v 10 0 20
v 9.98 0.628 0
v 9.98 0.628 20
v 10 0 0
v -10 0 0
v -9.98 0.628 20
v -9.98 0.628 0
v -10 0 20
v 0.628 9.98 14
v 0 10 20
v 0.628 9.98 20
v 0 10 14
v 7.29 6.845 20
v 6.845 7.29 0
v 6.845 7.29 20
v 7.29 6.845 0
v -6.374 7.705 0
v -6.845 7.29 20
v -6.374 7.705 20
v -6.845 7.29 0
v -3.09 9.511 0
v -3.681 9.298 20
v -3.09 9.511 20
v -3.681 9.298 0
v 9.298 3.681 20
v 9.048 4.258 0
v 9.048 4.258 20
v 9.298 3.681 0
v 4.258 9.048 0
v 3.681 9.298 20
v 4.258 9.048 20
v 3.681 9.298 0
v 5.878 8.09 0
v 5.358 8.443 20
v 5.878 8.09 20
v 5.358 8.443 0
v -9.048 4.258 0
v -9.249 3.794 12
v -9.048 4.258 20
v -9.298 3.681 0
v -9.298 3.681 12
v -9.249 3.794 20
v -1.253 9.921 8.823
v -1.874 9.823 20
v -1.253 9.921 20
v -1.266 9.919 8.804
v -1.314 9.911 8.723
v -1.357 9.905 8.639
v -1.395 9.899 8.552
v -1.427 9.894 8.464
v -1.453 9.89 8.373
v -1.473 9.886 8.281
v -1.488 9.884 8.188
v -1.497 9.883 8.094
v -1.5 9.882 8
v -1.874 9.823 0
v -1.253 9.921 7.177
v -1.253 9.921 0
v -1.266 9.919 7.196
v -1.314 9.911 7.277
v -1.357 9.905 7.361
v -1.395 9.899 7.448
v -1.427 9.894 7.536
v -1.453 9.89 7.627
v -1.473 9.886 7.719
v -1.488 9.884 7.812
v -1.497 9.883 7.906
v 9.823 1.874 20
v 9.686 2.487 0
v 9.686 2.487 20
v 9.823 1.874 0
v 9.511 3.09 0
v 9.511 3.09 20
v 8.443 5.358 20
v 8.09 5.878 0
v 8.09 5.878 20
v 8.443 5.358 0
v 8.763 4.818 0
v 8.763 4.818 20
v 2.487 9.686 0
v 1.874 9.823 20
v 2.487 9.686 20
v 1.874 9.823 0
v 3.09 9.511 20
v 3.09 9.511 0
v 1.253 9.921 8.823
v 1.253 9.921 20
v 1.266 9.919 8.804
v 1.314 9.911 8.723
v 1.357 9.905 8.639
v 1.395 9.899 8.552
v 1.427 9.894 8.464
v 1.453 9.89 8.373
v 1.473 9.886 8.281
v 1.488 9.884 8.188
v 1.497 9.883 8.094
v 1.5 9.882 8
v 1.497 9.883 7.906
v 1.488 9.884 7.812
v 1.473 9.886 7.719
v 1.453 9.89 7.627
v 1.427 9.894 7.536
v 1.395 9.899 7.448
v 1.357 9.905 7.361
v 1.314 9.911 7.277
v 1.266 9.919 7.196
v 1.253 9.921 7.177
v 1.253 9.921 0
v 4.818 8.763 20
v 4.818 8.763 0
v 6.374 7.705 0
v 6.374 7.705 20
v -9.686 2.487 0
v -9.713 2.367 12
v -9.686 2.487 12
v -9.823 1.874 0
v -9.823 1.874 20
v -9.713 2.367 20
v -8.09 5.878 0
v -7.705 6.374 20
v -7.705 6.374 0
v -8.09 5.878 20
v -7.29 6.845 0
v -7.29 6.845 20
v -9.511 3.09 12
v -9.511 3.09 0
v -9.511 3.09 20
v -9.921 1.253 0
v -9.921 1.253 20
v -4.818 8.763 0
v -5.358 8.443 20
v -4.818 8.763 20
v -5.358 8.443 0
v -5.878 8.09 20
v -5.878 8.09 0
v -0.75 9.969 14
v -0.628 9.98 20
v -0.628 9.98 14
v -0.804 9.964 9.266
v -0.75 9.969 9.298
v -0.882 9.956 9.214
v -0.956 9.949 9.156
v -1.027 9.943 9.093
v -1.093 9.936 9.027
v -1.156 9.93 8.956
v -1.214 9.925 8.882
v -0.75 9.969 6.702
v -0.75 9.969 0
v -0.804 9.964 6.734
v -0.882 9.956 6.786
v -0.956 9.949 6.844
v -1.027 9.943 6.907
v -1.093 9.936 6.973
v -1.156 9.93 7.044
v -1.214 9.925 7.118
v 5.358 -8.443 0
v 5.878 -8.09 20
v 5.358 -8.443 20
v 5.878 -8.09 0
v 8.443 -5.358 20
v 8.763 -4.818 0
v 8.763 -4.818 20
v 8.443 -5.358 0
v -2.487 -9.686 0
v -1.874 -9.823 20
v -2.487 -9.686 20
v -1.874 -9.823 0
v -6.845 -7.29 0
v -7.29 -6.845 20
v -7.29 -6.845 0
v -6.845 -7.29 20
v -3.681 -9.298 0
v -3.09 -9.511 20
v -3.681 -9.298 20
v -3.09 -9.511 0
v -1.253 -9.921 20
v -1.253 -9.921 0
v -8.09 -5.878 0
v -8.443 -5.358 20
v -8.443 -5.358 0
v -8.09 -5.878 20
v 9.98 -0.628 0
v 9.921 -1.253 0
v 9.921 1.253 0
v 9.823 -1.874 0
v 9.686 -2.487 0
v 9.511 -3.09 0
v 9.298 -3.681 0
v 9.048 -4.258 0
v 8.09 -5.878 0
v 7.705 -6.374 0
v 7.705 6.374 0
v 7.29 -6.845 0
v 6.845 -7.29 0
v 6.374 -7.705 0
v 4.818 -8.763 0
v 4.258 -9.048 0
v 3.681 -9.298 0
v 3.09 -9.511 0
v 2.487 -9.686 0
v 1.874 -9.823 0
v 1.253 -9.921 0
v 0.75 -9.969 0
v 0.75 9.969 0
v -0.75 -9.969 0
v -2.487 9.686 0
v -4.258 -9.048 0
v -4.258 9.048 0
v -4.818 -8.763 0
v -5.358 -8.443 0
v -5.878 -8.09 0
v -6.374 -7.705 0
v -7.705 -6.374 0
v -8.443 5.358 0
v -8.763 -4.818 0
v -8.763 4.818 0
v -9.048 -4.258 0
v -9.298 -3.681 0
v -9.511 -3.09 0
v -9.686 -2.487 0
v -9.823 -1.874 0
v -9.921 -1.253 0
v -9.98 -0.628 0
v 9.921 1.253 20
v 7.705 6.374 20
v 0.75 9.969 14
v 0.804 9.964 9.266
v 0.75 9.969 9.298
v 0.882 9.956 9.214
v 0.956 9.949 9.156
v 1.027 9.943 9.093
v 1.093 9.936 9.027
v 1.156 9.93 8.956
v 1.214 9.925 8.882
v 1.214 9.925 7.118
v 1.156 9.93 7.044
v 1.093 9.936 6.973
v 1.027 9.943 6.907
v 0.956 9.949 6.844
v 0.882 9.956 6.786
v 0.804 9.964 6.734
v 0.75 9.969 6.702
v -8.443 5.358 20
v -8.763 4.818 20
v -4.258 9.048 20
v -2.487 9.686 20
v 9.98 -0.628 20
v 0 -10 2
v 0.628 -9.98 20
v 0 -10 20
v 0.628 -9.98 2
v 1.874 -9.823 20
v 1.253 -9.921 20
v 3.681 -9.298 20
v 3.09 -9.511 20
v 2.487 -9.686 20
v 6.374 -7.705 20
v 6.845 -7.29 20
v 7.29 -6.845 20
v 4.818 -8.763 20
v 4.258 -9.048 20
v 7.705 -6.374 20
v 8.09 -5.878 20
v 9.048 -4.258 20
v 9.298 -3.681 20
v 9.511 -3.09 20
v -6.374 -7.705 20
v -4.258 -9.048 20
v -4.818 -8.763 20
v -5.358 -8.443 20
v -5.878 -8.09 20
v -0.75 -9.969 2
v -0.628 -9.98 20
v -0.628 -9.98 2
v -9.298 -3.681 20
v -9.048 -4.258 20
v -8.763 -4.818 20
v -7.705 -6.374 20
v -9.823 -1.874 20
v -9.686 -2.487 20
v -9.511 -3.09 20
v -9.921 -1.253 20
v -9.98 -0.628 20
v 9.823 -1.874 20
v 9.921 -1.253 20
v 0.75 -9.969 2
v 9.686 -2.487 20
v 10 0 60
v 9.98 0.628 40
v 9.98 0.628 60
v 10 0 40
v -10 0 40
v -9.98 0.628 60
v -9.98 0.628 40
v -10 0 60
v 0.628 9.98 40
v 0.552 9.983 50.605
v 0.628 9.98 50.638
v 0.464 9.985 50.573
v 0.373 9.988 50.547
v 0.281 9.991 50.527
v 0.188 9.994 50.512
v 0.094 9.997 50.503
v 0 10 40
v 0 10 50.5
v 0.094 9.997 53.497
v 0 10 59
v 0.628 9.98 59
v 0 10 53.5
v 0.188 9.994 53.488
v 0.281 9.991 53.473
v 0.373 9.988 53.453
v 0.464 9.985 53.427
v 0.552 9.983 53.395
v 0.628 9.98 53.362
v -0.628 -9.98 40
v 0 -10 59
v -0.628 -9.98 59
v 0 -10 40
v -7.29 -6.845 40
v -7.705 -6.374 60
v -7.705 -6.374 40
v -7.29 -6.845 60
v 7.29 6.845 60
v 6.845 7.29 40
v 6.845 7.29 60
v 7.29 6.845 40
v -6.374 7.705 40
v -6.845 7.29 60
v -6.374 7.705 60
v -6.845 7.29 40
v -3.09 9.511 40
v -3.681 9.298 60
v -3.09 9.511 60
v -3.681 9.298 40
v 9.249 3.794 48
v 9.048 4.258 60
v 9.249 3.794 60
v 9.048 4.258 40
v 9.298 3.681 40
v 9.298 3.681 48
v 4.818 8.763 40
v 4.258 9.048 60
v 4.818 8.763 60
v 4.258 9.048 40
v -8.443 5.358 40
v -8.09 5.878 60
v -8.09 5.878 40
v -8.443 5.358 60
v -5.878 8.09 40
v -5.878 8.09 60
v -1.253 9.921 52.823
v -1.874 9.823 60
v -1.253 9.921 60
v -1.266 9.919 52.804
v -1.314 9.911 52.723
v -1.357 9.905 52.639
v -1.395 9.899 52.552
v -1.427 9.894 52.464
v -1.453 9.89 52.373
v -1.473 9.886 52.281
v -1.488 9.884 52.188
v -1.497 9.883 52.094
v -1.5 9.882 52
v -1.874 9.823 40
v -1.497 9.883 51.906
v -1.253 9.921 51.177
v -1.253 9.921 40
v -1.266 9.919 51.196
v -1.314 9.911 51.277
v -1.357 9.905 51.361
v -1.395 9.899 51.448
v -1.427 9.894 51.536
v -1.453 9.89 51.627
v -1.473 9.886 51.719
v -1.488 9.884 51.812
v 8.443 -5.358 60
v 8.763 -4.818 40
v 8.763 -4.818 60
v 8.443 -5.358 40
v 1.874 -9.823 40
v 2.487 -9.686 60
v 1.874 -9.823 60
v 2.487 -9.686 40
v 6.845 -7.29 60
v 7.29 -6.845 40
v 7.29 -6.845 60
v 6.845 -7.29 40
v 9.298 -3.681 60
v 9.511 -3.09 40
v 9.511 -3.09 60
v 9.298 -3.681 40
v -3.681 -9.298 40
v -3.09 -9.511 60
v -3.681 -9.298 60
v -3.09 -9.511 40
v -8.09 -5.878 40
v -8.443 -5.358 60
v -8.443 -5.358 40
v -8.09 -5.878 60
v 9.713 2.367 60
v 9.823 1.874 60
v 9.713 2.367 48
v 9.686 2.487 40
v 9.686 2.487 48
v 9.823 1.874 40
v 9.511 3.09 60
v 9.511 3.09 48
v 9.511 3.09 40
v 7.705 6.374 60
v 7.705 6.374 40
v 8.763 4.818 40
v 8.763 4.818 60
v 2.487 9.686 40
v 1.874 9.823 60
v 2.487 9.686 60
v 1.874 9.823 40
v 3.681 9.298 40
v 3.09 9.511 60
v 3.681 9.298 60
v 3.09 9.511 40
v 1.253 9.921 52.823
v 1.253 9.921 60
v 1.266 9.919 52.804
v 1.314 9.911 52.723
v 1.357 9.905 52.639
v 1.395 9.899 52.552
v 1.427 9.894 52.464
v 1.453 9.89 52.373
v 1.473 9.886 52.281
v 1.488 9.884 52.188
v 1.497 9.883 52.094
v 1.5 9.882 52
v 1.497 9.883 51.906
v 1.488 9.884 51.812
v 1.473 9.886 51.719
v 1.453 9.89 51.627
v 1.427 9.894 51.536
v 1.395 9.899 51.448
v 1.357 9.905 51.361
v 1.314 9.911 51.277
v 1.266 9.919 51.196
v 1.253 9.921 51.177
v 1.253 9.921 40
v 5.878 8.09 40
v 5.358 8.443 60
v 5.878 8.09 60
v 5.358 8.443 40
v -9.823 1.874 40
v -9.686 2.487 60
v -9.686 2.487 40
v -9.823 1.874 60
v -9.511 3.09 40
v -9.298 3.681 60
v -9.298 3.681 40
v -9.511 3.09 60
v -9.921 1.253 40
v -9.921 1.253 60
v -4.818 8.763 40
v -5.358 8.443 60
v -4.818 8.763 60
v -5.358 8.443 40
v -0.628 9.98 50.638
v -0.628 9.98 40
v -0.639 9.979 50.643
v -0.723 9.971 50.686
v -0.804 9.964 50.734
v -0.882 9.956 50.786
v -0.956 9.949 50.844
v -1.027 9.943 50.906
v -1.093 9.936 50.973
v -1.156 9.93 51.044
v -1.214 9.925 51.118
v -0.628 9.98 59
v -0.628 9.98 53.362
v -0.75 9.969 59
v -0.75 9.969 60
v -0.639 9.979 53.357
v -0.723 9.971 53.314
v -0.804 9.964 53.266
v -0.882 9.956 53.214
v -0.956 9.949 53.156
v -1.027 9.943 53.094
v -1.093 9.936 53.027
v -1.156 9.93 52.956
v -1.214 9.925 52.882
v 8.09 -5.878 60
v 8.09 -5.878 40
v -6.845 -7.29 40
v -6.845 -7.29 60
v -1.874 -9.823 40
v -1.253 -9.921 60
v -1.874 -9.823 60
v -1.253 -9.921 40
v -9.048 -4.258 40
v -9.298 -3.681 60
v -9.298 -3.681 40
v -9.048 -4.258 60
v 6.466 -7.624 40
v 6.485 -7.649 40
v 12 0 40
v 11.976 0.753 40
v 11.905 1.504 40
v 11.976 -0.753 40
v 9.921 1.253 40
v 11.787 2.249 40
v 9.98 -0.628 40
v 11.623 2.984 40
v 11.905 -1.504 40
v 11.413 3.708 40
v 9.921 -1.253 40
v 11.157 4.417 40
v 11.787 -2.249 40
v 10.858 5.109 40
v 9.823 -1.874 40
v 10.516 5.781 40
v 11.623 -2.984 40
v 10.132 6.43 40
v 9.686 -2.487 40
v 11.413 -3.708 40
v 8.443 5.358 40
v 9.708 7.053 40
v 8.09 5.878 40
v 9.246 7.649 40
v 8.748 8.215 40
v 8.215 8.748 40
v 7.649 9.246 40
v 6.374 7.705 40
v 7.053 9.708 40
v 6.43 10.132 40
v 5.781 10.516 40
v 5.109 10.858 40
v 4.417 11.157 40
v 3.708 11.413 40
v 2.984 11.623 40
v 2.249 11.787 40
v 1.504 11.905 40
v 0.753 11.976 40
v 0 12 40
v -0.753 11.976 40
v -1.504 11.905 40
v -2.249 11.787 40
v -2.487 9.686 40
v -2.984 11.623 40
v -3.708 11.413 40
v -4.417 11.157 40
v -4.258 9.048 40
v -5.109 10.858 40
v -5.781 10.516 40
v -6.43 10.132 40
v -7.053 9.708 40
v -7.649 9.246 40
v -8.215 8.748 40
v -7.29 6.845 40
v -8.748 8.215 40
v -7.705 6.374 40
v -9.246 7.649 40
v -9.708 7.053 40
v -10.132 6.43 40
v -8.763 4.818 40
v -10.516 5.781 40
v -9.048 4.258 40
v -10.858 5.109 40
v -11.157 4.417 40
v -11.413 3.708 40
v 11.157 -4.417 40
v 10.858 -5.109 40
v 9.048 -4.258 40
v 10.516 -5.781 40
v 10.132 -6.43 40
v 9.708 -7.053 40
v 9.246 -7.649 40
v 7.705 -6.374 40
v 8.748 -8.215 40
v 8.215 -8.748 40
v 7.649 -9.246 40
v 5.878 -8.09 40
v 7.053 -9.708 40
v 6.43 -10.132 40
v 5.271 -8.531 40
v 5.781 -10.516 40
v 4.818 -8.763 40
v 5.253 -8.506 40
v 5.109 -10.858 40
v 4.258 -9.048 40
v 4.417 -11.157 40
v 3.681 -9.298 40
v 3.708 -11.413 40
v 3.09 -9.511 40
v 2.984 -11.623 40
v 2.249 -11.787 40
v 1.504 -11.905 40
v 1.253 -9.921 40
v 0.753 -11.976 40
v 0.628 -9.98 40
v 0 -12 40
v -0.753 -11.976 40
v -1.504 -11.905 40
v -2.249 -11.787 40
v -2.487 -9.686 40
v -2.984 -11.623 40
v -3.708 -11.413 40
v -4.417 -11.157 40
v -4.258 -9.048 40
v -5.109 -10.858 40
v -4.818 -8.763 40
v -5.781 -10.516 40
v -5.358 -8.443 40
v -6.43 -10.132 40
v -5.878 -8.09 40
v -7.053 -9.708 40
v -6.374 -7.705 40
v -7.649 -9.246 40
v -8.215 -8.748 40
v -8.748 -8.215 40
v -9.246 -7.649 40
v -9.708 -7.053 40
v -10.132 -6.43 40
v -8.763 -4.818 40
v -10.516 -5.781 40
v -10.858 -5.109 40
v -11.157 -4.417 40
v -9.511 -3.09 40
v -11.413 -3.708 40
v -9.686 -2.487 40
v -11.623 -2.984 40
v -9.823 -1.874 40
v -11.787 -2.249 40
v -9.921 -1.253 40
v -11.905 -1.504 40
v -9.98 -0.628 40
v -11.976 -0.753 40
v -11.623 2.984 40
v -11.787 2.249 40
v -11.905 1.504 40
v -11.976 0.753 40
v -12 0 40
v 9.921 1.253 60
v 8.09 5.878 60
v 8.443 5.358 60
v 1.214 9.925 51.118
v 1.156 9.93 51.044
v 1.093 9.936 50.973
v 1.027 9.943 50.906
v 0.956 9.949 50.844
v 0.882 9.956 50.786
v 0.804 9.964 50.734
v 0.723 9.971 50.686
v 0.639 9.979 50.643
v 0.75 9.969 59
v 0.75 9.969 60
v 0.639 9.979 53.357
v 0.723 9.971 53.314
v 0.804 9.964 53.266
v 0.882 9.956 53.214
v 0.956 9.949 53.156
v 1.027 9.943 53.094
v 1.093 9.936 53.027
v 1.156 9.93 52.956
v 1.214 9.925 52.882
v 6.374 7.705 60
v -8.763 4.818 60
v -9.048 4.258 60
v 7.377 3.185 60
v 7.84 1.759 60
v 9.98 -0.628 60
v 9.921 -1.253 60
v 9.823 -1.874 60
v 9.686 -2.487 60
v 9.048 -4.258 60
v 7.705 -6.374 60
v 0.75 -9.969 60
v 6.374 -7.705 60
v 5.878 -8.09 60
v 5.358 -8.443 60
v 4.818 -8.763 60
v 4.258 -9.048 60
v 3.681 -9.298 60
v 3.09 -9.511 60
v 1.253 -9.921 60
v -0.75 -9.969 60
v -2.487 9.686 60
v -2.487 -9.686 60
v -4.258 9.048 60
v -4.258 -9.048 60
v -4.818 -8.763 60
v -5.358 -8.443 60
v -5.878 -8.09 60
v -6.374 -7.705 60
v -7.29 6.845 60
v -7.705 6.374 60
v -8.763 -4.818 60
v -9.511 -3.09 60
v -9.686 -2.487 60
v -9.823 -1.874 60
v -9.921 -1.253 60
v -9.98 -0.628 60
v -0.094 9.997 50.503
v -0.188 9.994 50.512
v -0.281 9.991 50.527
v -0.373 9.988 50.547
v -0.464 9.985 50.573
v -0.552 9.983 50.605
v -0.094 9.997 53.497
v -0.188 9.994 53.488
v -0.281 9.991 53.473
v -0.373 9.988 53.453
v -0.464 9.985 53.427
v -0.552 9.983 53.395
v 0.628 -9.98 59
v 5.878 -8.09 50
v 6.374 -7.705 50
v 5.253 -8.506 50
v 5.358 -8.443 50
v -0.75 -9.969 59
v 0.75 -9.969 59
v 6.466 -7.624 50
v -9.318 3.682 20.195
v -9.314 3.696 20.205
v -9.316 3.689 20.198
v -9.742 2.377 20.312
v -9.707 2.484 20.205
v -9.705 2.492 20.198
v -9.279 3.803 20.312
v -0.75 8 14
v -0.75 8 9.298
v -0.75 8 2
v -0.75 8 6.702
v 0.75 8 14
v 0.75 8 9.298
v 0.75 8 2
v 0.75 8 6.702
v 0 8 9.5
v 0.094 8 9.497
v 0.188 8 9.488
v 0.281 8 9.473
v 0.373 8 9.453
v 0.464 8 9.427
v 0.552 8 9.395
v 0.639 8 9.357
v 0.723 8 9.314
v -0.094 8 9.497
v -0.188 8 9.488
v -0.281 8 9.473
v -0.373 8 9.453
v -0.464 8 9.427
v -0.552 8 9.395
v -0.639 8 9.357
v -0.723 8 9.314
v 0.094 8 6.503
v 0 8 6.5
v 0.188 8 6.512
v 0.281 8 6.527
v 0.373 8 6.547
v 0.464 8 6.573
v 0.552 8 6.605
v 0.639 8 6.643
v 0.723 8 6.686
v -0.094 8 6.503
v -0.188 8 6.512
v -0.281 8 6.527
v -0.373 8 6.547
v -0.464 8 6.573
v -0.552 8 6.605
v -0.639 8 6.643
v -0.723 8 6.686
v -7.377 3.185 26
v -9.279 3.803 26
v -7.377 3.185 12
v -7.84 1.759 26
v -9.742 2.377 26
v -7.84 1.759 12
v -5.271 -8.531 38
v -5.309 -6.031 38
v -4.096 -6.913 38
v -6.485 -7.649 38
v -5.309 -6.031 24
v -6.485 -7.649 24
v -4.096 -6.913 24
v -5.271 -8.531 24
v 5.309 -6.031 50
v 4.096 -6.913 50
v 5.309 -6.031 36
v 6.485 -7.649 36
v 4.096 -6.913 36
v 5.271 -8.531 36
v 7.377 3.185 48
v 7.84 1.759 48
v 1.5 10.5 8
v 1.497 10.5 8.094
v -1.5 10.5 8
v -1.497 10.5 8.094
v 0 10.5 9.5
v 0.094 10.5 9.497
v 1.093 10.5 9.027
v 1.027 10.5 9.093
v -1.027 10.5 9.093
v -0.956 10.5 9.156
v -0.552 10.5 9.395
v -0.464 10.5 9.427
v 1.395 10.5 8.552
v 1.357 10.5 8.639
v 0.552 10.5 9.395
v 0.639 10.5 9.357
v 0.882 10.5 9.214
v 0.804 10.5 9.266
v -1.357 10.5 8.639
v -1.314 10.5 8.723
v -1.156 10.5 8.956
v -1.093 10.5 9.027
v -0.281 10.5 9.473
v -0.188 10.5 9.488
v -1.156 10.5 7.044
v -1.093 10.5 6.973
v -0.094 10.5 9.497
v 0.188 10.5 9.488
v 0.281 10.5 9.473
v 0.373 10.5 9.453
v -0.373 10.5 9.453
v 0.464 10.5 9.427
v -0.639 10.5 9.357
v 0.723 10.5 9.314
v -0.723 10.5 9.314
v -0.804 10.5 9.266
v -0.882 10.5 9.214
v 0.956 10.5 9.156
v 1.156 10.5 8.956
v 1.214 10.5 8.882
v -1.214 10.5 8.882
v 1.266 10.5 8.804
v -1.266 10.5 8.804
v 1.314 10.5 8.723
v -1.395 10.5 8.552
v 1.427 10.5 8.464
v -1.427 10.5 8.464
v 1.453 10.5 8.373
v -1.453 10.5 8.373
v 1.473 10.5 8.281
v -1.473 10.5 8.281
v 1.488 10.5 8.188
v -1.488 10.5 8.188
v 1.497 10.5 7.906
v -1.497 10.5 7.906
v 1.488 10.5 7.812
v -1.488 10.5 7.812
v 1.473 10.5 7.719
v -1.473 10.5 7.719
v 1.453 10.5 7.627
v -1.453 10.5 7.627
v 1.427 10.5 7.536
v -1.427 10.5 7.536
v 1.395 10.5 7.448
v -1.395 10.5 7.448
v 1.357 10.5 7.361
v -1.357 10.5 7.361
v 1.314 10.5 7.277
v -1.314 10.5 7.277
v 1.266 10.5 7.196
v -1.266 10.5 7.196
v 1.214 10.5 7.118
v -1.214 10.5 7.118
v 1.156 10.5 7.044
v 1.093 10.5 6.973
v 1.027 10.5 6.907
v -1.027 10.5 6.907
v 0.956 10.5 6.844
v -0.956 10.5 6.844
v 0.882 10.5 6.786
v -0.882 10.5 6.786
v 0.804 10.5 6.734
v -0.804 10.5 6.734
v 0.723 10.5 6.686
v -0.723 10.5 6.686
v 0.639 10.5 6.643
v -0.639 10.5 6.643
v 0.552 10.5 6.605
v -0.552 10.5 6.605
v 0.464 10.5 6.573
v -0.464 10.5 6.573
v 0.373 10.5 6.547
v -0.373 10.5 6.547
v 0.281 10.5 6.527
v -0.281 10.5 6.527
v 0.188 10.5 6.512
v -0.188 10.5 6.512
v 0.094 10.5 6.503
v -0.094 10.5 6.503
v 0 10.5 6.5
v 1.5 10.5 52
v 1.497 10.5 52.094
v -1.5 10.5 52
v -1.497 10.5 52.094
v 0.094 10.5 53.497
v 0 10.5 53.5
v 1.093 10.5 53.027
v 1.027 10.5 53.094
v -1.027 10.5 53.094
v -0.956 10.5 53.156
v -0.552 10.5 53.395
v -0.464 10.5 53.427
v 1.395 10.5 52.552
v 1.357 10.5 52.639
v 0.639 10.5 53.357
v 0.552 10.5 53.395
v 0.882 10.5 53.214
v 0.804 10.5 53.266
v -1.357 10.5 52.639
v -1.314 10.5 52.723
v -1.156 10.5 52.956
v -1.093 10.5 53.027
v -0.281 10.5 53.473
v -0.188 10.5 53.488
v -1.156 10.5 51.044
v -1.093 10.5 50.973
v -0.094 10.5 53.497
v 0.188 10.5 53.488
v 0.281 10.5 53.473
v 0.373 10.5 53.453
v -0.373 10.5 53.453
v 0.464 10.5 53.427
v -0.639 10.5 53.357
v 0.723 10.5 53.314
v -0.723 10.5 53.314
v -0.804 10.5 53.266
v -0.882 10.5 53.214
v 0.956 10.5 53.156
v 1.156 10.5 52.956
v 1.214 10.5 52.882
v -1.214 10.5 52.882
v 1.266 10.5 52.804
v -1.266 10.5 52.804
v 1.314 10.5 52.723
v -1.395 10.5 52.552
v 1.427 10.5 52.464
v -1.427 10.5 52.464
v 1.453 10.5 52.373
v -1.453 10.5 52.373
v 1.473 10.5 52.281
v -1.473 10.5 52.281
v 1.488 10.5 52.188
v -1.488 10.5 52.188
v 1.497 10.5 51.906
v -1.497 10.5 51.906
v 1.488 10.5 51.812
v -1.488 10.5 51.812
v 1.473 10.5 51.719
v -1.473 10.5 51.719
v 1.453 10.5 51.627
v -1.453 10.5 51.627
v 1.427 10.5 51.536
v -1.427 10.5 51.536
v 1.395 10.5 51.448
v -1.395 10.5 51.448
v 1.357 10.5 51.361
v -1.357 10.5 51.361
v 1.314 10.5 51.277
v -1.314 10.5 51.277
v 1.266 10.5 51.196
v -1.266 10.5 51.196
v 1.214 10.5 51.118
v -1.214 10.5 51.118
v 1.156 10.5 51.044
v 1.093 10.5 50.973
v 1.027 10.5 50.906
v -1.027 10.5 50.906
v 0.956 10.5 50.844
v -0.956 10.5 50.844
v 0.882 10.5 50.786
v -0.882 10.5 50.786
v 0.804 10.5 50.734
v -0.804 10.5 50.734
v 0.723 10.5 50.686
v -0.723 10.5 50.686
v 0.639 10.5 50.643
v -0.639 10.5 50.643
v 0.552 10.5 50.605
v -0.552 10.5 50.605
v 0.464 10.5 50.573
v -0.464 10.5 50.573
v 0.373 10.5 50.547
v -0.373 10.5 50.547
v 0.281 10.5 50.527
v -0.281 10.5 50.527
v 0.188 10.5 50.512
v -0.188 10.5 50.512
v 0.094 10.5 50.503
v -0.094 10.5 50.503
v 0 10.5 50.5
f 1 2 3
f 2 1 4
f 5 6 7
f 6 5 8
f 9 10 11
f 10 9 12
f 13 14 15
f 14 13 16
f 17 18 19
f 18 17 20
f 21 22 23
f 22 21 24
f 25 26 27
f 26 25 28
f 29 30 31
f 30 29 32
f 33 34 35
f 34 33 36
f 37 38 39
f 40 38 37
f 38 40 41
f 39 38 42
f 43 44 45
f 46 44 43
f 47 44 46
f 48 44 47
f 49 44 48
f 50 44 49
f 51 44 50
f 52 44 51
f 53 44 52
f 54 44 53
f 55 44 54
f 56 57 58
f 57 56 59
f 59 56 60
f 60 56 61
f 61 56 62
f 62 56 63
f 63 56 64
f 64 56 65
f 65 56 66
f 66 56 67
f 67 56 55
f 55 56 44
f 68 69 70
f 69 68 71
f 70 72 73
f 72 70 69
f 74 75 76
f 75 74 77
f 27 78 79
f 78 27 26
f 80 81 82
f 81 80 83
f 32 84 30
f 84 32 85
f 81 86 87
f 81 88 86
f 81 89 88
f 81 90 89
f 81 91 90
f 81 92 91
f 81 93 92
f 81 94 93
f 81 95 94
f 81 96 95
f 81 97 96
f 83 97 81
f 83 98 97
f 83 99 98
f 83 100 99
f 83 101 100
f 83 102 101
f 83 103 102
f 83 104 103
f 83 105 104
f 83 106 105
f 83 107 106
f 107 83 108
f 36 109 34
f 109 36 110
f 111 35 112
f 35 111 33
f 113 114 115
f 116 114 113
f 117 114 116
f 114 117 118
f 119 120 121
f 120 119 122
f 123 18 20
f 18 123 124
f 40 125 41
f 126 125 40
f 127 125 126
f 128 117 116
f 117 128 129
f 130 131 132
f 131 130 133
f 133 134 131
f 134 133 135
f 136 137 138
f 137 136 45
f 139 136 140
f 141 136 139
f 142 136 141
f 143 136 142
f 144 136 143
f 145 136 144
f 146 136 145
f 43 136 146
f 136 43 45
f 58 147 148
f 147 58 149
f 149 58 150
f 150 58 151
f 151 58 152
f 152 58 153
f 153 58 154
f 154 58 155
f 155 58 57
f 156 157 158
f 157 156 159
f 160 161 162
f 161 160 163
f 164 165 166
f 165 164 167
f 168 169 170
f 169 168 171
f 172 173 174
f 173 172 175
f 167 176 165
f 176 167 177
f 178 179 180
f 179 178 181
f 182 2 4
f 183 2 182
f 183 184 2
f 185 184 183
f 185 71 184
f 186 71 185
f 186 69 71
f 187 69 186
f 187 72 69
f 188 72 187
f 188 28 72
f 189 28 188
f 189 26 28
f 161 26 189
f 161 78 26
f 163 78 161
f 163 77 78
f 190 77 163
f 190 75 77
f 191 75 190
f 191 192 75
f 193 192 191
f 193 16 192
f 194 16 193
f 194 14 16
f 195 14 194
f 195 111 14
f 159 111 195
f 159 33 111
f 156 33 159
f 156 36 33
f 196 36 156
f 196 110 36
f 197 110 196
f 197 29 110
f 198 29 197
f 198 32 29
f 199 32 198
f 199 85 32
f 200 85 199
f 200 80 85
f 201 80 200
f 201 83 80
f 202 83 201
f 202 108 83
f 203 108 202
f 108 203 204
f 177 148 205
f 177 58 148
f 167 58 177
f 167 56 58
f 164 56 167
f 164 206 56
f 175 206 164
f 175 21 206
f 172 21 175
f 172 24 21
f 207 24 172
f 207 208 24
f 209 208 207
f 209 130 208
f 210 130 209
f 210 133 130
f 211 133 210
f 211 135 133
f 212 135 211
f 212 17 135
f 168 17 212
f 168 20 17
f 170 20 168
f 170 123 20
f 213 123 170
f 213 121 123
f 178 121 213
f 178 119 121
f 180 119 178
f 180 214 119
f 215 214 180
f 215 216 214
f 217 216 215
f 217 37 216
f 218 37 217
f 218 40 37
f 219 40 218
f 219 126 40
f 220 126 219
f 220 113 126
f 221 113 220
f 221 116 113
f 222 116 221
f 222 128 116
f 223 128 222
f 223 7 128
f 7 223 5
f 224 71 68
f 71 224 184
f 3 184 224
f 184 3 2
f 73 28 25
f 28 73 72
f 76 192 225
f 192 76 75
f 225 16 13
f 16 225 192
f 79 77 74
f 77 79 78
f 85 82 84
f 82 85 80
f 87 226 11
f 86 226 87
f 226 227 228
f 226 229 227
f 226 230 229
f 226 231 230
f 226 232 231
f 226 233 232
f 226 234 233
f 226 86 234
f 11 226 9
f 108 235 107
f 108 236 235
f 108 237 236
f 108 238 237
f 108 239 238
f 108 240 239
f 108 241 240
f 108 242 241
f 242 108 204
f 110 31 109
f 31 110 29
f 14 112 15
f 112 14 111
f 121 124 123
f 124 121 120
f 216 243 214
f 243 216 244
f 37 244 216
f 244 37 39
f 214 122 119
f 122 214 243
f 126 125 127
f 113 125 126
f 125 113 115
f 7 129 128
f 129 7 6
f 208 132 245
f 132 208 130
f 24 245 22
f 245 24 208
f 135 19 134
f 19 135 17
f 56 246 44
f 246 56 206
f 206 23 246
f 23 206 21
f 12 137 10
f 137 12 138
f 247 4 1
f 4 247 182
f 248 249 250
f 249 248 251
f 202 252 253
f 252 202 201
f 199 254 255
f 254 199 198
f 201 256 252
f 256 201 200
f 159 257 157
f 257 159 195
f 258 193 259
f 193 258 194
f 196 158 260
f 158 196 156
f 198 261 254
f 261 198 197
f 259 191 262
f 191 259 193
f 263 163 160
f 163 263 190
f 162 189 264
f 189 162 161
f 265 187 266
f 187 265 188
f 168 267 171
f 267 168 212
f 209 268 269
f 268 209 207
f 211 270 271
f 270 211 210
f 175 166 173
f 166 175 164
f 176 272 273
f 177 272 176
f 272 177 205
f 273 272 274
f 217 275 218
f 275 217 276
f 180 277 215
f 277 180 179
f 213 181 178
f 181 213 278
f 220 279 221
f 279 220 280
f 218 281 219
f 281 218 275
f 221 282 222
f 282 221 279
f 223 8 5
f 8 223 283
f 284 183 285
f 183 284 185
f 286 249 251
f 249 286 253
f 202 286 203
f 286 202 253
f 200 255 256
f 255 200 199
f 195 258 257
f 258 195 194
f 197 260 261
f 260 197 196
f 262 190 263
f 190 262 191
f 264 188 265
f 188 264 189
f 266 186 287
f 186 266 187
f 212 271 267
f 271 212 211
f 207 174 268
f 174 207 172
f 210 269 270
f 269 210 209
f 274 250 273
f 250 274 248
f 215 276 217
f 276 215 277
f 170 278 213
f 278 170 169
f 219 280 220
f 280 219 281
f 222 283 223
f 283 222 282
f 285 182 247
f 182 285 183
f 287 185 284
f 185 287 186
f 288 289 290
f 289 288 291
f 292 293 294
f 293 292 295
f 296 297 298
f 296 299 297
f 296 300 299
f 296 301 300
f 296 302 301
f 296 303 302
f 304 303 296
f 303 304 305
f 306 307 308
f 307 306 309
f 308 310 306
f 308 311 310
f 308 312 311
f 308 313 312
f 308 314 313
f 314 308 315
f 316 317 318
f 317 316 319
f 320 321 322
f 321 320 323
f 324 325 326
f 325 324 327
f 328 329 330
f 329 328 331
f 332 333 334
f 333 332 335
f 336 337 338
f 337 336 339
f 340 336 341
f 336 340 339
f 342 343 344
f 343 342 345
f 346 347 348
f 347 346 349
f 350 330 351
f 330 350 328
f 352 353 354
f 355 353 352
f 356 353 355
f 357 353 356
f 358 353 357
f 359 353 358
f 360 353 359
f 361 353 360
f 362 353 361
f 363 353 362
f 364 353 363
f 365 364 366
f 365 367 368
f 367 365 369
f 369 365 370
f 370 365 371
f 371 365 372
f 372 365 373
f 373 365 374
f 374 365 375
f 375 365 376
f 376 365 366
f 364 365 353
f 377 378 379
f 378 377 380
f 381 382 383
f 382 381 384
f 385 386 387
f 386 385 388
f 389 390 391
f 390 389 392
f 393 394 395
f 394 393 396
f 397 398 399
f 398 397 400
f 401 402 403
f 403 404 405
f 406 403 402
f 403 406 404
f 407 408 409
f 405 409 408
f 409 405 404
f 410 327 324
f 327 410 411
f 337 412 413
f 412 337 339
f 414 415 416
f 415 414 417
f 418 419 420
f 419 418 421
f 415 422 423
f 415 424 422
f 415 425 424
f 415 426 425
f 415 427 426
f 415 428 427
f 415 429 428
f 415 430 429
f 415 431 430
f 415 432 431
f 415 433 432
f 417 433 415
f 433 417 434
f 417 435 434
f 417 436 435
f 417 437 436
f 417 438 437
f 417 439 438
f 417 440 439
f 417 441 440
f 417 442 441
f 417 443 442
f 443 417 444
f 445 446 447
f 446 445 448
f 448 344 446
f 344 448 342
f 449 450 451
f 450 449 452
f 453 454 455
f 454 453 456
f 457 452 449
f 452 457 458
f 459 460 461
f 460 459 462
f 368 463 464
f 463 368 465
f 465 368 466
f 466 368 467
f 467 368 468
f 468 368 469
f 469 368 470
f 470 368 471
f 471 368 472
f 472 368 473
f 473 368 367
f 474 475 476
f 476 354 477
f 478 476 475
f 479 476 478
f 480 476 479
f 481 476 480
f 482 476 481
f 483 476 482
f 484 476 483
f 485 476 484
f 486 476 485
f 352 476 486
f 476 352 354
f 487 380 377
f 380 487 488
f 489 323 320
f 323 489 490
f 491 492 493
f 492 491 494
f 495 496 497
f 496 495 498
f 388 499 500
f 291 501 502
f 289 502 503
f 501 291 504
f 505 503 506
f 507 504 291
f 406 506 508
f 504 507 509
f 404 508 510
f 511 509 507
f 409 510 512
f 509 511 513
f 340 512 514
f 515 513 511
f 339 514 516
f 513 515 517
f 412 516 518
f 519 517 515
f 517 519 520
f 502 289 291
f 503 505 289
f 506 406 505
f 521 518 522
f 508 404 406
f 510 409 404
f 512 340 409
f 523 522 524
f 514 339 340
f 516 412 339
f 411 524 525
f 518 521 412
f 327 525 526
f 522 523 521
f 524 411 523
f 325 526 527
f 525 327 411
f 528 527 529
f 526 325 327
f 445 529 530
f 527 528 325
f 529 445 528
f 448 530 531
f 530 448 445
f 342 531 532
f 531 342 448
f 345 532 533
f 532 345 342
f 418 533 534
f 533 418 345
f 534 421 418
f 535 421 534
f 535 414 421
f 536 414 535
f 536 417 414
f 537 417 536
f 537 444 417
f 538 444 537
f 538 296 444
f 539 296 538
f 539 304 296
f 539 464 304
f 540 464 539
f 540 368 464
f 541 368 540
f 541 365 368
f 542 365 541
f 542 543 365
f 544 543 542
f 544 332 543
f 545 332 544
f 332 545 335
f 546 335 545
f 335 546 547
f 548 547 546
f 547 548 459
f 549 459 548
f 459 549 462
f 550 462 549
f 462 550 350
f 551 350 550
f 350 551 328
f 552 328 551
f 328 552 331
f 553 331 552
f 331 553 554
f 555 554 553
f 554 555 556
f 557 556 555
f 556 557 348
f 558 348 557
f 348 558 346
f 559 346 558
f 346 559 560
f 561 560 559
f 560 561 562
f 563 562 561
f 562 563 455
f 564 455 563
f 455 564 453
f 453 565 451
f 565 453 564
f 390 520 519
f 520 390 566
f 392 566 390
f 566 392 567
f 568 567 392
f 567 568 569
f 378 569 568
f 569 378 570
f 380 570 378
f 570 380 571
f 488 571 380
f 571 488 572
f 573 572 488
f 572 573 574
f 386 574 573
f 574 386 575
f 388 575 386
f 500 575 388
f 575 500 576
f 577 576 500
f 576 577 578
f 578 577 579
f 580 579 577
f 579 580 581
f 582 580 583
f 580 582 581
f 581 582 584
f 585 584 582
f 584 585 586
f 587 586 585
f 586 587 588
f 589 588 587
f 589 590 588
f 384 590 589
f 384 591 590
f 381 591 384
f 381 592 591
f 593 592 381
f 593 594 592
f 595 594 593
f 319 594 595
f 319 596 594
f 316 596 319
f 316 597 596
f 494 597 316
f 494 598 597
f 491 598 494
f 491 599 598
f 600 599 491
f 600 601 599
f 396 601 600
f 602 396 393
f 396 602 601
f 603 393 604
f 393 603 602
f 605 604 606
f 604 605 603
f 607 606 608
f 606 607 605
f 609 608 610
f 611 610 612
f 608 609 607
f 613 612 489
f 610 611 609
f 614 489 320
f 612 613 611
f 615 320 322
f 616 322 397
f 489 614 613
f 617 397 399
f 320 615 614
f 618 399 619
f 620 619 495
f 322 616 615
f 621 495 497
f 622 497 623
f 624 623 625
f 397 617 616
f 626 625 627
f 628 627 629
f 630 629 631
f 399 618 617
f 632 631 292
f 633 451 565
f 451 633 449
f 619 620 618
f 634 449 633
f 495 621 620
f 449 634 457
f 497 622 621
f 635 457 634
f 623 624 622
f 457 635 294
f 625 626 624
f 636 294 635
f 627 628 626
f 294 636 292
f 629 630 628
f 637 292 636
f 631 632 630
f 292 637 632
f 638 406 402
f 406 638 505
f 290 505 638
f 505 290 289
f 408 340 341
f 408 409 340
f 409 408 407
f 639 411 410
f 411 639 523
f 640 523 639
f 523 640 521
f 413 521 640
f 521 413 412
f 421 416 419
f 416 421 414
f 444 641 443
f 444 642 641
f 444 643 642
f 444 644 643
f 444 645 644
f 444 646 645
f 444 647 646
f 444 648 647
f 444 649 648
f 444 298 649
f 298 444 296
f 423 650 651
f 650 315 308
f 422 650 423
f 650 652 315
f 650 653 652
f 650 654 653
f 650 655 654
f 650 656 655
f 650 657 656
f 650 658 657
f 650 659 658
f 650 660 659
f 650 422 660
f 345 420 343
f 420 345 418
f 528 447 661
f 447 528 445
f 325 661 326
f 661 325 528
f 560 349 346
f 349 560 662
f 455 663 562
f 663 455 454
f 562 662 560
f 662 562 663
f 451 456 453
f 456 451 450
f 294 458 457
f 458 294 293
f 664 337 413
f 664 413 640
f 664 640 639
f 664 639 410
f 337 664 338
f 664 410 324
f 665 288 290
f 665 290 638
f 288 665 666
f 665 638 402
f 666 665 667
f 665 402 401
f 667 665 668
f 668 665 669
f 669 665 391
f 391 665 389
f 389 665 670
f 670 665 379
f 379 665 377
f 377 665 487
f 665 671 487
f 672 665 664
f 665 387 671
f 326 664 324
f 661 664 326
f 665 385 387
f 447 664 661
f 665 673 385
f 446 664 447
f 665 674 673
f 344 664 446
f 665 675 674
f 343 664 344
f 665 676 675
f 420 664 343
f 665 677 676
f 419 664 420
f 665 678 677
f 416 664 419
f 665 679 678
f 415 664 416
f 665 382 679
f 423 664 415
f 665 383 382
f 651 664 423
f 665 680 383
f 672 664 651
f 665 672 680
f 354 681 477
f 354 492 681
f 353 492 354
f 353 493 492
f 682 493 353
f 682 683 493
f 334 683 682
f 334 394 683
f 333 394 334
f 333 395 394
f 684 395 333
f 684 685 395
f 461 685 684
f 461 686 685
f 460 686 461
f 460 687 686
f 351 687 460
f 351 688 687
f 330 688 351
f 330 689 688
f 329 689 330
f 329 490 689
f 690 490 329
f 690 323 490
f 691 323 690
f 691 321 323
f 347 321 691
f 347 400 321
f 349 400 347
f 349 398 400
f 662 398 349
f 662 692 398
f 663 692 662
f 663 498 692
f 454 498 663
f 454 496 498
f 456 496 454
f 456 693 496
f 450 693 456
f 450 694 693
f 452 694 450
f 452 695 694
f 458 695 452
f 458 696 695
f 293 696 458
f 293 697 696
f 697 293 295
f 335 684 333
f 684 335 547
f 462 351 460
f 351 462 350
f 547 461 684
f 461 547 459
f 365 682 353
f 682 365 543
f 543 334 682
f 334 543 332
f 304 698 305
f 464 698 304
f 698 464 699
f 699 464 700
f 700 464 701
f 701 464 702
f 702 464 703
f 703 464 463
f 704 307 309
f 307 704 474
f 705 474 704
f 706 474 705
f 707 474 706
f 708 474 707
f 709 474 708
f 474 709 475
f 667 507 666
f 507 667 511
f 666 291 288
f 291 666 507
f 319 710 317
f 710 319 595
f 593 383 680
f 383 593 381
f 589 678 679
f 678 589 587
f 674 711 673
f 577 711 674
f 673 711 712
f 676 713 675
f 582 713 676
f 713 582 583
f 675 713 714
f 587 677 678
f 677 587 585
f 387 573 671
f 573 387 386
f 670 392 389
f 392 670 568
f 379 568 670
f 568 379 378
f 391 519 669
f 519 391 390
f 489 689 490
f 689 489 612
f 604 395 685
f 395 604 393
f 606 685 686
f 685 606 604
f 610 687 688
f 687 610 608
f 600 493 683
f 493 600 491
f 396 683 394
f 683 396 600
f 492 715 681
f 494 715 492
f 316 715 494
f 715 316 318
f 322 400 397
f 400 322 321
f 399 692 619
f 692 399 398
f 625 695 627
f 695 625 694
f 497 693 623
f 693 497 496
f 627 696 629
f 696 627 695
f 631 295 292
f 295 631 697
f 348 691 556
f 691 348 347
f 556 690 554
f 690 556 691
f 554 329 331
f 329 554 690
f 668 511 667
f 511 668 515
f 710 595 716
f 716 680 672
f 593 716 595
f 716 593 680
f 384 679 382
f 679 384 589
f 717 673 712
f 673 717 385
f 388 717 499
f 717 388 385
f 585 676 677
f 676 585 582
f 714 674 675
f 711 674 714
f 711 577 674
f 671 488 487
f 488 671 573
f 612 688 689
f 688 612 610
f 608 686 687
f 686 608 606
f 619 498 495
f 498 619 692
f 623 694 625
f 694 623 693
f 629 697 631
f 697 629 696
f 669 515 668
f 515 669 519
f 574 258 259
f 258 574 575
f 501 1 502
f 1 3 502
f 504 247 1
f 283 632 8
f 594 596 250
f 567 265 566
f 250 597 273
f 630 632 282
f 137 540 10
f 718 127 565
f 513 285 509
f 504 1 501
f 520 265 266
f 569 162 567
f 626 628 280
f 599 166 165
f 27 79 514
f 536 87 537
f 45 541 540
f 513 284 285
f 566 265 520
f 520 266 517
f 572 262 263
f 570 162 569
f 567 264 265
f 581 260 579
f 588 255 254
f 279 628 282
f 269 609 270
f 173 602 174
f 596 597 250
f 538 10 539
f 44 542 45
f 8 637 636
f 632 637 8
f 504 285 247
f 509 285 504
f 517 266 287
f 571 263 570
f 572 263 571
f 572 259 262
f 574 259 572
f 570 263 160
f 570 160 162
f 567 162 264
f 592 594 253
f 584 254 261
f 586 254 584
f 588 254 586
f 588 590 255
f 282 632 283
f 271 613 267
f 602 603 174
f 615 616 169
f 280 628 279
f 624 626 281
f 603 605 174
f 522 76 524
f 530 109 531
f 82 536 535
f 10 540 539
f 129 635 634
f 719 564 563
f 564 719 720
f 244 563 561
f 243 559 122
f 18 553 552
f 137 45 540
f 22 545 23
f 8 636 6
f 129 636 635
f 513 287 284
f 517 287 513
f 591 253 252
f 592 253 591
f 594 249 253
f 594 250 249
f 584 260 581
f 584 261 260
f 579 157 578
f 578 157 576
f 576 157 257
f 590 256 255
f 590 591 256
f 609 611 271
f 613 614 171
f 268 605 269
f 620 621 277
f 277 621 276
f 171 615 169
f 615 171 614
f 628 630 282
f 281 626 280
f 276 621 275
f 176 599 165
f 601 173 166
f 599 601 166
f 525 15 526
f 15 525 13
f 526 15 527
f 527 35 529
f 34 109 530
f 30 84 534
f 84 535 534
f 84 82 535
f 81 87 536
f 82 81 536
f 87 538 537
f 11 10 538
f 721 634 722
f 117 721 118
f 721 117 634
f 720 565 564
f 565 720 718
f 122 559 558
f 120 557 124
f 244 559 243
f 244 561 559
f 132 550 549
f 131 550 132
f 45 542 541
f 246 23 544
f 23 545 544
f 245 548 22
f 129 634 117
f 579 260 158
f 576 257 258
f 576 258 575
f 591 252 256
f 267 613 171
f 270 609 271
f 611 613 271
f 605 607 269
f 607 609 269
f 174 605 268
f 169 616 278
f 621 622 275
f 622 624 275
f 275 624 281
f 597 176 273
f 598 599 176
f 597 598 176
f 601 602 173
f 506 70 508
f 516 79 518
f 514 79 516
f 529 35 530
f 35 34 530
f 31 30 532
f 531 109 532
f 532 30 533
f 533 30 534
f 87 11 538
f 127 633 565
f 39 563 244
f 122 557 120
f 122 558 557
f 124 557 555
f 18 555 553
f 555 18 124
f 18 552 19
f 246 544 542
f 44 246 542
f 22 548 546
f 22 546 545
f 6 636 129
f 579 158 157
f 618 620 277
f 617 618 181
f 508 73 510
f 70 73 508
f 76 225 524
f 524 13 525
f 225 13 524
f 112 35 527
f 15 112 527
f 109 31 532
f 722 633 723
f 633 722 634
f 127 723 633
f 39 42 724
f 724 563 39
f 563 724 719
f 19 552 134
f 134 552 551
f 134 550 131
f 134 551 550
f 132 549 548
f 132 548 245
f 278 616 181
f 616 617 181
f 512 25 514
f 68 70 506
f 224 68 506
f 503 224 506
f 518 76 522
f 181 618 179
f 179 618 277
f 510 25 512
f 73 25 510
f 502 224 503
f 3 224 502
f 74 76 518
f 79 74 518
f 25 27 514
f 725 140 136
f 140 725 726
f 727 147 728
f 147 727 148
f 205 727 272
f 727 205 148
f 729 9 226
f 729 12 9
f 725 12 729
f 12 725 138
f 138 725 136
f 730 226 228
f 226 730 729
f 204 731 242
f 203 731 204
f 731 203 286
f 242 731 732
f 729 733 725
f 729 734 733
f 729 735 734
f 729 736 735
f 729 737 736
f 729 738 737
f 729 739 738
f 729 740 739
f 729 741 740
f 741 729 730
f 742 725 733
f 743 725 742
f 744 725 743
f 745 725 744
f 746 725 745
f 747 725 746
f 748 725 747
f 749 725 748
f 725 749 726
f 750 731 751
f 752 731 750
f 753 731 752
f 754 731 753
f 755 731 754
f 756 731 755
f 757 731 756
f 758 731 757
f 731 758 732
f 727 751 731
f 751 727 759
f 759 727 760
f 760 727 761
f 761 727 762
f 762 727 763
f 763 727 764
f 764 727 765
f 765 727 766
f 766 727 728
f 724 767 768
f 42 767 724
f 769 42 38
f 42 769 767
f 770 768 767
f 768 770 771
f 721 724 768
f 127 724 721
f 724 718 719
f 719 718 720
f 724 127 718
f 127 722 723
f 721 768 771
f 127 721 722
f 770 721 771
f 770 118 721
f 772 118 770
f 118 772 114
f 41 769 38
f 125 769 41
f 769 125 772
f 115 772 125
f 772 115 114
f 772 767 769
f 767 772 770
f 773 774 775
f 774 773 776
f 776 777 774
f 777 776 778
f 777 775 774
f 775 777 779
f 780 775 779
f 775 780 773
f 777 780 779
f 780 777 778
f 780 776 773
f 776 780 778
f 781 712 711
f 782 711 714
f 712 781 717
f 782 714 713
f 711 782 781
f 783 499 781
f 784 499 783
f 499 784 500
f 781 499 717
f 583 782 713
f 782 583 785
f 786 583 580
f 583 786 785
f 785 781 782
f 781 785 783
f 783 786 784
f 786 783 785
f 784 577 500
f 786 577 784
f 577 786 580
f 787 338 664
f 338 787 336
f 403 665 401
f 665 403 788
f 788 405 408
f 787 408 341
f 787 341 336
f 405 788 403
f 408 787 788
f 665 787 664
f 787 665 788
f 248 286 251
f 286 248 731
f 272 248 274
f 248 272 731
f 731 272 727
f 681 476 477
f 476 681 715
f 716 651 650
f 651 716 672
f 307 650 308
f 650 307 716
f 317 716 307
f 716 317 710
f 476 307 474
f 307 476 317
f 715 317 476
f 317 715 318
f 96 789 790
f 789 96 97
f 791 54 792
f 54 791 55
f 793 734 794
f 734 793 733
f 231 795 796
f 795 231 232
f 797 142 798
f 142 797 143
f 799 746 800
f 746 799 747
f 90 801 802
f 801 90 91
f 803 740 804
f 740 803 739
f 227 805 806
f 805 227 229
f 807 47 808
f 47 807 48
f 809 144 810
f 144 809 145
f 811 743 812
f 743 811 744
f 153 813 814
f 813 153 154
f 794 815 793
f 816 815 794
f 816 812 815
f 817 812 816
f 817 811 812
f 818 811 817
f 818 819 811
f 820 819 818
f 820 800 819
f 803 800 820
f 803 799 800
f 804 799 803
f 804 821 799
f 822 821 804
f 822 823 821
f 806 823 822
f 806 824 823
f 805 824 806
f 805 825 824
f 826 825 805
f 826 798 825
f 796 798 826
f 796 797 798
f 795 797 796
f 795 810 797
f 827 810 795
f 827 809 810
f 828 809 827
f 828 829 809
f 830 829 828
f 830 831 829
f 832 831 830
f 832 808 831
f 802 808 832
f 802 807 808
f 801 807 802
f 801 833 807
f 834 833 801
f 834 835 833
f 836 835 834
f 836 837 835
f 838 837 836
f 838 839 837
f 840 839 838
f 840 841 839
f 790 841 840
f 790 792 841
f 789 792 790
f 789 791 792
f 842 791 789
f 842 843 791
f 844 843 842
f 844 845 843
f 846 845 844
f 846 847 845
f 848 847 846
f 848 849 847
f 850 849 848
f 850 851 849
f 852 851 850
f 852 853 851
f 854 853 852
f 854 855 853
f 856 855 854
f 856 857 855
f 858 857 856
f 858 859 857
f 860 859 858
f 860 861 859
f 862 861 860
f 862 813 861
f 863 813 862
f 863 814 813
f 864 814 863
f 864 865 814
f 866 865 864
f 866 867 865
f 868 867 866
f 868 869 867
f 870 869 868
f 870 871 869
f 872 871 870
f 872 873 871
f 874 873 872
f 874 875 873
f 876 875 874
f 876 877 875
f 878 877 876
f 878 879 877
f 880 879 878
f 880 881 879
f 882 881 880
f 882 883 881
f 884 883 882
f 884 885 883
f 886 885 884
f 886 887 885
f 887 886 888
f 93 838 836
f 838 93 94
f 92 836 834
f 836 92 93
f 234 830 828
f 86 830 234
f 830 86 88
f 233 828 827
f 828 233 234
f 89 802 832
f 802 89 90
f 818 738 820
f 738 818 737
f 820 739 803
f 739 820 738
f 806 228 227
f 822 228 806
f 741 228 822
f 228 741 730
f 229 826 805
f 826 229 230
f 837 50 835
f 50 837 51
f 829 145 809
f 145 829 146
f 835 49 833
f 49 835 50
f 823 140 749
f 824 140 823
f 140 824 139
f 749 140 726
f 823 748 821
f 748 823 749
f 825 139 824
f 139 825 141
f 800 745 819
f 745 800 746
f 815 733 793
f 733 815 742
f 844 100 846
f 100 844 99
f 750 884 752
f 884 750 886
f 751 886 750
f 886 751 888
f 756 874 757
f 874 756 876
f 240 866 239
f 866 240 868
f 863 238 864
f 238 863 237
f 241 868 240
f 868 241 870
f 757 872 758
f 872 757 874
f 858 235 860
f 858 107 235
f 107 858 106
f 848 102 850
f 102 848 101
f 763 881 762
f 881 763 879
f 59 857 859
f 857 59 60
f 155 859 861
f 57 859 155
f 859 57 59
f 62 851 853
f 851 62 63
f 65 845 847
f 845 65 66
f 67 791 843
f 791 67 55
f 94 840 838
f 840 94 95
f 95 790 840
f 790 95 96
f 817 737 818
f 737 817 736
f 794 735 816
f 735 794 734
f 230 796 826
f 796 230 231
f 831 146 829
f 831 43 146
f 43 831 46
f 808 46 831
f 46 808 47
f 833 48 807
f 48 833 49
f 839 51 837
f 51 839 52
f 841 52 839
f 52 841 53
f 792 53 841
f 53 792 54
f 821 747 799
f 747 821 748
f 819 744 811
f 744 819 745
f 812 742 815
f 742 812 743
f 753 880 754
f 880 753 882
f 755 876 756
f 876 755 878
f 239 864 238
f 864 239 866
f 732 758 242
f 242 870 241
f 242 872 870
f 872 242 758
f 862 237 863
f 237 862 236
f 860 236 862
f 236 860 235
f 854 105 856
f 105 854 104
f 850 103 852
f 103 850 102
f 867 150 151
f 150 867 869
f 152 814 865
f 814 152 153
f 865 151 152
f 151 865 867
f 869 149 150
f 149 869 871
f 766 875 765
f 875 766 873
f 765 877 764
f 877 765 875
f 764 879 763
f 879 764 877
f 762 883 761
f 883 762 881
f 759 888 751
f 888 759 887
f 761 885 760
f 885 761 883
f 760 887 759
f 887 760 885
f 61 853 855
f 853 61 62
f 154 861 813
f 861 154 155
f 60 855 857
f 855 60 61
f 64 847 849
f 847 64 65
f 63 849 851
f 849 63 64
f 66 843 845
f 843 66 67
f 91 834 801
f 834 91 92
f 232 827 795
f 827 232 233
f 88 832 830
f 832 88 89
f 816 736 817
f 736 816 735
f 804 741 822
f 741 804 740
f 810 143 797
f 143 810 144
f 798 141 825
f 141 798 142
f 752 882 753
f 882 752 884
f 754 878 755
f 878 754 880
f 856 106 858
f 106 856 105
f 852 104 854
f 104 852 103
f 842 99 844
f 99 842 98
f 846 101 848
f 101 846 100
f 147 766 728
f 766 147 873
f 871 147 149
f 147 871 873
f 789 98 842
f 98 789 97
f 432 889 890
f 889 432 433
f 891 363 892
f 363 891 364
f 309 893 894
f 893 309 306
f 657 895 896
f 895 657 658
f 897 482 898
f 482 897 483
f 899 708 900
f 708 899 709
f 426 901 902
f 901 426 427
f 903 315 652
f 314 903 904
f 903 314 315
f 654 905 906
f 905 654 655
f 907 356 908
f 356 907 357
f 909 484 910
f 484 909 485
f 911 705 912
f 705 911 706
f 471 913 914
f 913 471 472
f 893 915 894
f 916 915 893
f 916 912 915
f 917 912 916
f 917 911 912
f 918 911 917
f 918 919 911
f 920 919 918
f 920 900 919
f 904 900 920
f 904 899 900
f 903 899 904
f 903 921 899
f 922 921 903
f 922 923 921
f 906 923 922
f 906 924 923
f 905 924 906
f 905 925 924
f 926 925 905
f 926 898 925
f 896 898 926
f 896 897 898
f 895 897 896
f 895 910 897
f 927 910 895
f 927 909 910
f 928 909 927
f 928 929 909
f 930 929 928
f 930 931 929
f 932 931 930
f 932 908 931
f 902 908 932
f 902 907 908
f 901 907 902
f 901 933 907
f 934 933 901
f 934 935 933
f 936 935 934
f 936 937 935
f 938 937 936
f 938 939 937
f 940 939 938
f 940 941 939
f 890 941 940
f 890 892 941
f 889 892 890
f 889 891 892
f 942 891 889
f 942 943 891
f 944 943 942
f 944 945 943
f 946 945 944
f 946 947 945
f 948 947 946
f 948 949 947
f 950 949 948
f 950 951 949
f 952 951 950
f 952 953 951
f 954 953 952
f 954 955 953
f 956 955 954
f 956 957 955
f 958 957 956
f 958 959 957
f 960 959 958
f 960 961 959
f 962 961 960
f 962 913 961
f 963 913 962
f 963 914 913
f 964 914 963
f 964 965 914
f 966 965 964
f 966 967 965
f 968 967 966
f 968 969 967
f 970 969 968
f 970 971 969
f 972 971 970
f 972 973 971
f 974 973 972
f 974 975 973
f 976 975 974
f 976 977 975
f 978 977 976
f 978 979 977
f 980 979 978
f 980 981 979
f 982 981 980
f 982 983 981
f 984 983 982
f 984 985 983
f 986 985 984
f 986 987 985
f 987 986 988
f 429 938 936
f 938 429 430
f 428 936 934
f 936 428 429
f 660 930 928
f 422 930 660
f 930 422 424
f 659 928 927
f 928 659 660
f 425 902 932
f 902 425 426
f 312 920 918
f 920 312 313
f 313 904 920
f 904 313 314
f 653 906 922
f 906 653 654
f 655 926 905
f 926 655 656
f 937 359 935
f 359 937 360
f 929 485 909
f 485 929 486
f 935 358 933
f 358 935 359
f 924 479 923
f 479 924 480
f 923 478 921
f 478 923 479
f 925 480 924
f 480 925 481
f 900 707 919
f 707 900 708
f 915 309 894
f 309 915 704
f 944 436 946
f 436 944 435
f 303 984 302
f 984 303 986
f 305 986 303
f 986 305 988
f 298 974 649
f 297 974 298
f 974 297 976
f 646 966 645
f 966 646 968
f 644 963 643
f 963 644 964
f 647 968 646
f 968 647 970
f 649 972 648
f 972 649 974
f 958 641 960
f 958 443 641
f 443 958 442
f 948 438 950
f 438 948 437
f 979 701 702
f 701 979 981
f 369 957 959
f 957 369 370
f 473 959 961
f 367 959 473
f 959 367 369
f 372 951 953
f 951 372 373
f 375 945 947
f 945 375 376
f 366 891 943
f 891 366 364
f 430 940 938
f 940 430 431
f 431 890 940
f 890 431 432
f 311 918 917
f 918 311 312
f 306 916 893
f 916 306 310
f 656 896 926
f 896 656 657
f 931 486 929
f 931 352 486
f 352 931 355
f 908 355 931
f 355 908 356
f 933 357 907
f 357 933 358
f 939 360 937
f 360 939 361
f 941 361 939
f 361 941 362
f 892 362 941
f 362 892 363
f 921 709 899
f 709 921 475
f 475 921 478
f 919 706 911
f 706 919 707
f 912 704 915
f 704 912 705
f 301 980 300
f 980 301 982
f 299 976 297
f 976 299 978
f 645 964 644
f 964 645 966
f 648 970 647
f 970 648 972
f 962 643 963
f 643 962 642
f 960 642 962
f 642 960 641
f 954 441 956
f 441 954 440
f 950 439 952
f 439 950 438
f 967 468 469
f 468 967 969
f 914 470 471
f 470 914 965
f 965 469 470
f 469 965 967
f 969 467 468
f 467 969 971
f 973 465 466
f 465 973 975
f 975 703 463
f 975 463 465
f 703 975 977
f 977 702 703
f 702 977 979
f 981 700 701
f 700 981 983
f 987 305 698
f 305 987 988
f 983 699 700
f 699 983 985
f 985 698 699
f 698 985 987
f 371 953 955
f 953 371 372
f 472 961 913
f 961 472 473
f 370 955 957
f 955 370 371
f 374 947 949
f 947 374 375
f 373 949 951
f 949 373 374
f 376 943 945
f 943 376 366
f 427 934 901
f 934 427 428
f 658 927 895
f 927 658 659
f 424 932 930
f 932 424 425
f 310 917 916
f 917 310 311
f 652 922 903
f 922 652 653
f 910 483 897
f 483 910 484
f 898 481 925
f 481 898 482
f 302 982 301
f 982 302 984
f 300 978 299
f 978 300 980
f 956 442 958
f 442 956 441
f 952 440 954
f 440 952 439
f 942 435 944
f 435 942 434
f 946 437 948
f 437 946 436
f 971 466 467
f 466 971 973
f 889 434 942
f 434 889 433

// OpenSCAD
$fn = 100;

// Parameters
main_length = 60;
main_radius = 10;
bulge_radius = 12;
bulge_length = 20;
cut_width = 1.5;
cut_depth = 2;
num_cuts = 5;
screw_radius = 1.5;
screw_length = 8;
screw_offset = 8;

// Main module
module flexible_coupling() {
    difference() {
        union() {
            // Left shaft
            cylinder(h = (main_length - bulge_length)/2, r = main_radius);
            // Right shaft
            translate([0, 0, main_length - (main_length - bulge_length)/2])
                cylinder(h = (main_length - bulge_length)/2, r = main_radius);
            // Bulge
            translate([0, 0, (main_length - bulge_length)/2])
                cylinder(h = bulge_length, r1 = main_radius, r2 = bulge_radius);
        }

        // Helical cuts (simulated with rotated slots)
        for (i = [0:num_cuts-1]) {
            rotate([0, 0, i * 360 / num_cuts])
                translate([-cut_width/2, main_radius - cut_depth, i * main_length / num_cuts])
                    cube([cut_width, cut_depth, main_length / num_cuts + 2], center=false);
        }

        // Clamping screw holes
        for (z = [screw_offset, main_length - screw_offset]) {
            rotate([90, 0, 0])
                translate([z, -main_radius, -screw_radius])
                    cylinder(h = 2*main_radius, r = screw_radius);
        }

        // Slits at both ends
        for (z = [0, main_length - 1]) {
            translate([-cut_width/2, -main_radius, z])
                cube([cut_width, 2*main_radius, 2]);
        }
    }

    // Clamping screws
    for (z = [screw_offset, main_length - screw_offset]) {
        translate([0, main_radius + 0.5, z])
            rotate([90, 0, 0])
                clamping_screw();
    }
}

// Clamping screw module
module clamping_screw() {
    union() {
        cylinder(h = screw_length, r = screw_radius);
        // Hex socket (simplified)
        translate([0, 0, screw_length - 1])
            cylinder(h = 1, r = screw_radius * 0.8, $fn=6);
    }
}

// Render the model
flexible_coupling();
